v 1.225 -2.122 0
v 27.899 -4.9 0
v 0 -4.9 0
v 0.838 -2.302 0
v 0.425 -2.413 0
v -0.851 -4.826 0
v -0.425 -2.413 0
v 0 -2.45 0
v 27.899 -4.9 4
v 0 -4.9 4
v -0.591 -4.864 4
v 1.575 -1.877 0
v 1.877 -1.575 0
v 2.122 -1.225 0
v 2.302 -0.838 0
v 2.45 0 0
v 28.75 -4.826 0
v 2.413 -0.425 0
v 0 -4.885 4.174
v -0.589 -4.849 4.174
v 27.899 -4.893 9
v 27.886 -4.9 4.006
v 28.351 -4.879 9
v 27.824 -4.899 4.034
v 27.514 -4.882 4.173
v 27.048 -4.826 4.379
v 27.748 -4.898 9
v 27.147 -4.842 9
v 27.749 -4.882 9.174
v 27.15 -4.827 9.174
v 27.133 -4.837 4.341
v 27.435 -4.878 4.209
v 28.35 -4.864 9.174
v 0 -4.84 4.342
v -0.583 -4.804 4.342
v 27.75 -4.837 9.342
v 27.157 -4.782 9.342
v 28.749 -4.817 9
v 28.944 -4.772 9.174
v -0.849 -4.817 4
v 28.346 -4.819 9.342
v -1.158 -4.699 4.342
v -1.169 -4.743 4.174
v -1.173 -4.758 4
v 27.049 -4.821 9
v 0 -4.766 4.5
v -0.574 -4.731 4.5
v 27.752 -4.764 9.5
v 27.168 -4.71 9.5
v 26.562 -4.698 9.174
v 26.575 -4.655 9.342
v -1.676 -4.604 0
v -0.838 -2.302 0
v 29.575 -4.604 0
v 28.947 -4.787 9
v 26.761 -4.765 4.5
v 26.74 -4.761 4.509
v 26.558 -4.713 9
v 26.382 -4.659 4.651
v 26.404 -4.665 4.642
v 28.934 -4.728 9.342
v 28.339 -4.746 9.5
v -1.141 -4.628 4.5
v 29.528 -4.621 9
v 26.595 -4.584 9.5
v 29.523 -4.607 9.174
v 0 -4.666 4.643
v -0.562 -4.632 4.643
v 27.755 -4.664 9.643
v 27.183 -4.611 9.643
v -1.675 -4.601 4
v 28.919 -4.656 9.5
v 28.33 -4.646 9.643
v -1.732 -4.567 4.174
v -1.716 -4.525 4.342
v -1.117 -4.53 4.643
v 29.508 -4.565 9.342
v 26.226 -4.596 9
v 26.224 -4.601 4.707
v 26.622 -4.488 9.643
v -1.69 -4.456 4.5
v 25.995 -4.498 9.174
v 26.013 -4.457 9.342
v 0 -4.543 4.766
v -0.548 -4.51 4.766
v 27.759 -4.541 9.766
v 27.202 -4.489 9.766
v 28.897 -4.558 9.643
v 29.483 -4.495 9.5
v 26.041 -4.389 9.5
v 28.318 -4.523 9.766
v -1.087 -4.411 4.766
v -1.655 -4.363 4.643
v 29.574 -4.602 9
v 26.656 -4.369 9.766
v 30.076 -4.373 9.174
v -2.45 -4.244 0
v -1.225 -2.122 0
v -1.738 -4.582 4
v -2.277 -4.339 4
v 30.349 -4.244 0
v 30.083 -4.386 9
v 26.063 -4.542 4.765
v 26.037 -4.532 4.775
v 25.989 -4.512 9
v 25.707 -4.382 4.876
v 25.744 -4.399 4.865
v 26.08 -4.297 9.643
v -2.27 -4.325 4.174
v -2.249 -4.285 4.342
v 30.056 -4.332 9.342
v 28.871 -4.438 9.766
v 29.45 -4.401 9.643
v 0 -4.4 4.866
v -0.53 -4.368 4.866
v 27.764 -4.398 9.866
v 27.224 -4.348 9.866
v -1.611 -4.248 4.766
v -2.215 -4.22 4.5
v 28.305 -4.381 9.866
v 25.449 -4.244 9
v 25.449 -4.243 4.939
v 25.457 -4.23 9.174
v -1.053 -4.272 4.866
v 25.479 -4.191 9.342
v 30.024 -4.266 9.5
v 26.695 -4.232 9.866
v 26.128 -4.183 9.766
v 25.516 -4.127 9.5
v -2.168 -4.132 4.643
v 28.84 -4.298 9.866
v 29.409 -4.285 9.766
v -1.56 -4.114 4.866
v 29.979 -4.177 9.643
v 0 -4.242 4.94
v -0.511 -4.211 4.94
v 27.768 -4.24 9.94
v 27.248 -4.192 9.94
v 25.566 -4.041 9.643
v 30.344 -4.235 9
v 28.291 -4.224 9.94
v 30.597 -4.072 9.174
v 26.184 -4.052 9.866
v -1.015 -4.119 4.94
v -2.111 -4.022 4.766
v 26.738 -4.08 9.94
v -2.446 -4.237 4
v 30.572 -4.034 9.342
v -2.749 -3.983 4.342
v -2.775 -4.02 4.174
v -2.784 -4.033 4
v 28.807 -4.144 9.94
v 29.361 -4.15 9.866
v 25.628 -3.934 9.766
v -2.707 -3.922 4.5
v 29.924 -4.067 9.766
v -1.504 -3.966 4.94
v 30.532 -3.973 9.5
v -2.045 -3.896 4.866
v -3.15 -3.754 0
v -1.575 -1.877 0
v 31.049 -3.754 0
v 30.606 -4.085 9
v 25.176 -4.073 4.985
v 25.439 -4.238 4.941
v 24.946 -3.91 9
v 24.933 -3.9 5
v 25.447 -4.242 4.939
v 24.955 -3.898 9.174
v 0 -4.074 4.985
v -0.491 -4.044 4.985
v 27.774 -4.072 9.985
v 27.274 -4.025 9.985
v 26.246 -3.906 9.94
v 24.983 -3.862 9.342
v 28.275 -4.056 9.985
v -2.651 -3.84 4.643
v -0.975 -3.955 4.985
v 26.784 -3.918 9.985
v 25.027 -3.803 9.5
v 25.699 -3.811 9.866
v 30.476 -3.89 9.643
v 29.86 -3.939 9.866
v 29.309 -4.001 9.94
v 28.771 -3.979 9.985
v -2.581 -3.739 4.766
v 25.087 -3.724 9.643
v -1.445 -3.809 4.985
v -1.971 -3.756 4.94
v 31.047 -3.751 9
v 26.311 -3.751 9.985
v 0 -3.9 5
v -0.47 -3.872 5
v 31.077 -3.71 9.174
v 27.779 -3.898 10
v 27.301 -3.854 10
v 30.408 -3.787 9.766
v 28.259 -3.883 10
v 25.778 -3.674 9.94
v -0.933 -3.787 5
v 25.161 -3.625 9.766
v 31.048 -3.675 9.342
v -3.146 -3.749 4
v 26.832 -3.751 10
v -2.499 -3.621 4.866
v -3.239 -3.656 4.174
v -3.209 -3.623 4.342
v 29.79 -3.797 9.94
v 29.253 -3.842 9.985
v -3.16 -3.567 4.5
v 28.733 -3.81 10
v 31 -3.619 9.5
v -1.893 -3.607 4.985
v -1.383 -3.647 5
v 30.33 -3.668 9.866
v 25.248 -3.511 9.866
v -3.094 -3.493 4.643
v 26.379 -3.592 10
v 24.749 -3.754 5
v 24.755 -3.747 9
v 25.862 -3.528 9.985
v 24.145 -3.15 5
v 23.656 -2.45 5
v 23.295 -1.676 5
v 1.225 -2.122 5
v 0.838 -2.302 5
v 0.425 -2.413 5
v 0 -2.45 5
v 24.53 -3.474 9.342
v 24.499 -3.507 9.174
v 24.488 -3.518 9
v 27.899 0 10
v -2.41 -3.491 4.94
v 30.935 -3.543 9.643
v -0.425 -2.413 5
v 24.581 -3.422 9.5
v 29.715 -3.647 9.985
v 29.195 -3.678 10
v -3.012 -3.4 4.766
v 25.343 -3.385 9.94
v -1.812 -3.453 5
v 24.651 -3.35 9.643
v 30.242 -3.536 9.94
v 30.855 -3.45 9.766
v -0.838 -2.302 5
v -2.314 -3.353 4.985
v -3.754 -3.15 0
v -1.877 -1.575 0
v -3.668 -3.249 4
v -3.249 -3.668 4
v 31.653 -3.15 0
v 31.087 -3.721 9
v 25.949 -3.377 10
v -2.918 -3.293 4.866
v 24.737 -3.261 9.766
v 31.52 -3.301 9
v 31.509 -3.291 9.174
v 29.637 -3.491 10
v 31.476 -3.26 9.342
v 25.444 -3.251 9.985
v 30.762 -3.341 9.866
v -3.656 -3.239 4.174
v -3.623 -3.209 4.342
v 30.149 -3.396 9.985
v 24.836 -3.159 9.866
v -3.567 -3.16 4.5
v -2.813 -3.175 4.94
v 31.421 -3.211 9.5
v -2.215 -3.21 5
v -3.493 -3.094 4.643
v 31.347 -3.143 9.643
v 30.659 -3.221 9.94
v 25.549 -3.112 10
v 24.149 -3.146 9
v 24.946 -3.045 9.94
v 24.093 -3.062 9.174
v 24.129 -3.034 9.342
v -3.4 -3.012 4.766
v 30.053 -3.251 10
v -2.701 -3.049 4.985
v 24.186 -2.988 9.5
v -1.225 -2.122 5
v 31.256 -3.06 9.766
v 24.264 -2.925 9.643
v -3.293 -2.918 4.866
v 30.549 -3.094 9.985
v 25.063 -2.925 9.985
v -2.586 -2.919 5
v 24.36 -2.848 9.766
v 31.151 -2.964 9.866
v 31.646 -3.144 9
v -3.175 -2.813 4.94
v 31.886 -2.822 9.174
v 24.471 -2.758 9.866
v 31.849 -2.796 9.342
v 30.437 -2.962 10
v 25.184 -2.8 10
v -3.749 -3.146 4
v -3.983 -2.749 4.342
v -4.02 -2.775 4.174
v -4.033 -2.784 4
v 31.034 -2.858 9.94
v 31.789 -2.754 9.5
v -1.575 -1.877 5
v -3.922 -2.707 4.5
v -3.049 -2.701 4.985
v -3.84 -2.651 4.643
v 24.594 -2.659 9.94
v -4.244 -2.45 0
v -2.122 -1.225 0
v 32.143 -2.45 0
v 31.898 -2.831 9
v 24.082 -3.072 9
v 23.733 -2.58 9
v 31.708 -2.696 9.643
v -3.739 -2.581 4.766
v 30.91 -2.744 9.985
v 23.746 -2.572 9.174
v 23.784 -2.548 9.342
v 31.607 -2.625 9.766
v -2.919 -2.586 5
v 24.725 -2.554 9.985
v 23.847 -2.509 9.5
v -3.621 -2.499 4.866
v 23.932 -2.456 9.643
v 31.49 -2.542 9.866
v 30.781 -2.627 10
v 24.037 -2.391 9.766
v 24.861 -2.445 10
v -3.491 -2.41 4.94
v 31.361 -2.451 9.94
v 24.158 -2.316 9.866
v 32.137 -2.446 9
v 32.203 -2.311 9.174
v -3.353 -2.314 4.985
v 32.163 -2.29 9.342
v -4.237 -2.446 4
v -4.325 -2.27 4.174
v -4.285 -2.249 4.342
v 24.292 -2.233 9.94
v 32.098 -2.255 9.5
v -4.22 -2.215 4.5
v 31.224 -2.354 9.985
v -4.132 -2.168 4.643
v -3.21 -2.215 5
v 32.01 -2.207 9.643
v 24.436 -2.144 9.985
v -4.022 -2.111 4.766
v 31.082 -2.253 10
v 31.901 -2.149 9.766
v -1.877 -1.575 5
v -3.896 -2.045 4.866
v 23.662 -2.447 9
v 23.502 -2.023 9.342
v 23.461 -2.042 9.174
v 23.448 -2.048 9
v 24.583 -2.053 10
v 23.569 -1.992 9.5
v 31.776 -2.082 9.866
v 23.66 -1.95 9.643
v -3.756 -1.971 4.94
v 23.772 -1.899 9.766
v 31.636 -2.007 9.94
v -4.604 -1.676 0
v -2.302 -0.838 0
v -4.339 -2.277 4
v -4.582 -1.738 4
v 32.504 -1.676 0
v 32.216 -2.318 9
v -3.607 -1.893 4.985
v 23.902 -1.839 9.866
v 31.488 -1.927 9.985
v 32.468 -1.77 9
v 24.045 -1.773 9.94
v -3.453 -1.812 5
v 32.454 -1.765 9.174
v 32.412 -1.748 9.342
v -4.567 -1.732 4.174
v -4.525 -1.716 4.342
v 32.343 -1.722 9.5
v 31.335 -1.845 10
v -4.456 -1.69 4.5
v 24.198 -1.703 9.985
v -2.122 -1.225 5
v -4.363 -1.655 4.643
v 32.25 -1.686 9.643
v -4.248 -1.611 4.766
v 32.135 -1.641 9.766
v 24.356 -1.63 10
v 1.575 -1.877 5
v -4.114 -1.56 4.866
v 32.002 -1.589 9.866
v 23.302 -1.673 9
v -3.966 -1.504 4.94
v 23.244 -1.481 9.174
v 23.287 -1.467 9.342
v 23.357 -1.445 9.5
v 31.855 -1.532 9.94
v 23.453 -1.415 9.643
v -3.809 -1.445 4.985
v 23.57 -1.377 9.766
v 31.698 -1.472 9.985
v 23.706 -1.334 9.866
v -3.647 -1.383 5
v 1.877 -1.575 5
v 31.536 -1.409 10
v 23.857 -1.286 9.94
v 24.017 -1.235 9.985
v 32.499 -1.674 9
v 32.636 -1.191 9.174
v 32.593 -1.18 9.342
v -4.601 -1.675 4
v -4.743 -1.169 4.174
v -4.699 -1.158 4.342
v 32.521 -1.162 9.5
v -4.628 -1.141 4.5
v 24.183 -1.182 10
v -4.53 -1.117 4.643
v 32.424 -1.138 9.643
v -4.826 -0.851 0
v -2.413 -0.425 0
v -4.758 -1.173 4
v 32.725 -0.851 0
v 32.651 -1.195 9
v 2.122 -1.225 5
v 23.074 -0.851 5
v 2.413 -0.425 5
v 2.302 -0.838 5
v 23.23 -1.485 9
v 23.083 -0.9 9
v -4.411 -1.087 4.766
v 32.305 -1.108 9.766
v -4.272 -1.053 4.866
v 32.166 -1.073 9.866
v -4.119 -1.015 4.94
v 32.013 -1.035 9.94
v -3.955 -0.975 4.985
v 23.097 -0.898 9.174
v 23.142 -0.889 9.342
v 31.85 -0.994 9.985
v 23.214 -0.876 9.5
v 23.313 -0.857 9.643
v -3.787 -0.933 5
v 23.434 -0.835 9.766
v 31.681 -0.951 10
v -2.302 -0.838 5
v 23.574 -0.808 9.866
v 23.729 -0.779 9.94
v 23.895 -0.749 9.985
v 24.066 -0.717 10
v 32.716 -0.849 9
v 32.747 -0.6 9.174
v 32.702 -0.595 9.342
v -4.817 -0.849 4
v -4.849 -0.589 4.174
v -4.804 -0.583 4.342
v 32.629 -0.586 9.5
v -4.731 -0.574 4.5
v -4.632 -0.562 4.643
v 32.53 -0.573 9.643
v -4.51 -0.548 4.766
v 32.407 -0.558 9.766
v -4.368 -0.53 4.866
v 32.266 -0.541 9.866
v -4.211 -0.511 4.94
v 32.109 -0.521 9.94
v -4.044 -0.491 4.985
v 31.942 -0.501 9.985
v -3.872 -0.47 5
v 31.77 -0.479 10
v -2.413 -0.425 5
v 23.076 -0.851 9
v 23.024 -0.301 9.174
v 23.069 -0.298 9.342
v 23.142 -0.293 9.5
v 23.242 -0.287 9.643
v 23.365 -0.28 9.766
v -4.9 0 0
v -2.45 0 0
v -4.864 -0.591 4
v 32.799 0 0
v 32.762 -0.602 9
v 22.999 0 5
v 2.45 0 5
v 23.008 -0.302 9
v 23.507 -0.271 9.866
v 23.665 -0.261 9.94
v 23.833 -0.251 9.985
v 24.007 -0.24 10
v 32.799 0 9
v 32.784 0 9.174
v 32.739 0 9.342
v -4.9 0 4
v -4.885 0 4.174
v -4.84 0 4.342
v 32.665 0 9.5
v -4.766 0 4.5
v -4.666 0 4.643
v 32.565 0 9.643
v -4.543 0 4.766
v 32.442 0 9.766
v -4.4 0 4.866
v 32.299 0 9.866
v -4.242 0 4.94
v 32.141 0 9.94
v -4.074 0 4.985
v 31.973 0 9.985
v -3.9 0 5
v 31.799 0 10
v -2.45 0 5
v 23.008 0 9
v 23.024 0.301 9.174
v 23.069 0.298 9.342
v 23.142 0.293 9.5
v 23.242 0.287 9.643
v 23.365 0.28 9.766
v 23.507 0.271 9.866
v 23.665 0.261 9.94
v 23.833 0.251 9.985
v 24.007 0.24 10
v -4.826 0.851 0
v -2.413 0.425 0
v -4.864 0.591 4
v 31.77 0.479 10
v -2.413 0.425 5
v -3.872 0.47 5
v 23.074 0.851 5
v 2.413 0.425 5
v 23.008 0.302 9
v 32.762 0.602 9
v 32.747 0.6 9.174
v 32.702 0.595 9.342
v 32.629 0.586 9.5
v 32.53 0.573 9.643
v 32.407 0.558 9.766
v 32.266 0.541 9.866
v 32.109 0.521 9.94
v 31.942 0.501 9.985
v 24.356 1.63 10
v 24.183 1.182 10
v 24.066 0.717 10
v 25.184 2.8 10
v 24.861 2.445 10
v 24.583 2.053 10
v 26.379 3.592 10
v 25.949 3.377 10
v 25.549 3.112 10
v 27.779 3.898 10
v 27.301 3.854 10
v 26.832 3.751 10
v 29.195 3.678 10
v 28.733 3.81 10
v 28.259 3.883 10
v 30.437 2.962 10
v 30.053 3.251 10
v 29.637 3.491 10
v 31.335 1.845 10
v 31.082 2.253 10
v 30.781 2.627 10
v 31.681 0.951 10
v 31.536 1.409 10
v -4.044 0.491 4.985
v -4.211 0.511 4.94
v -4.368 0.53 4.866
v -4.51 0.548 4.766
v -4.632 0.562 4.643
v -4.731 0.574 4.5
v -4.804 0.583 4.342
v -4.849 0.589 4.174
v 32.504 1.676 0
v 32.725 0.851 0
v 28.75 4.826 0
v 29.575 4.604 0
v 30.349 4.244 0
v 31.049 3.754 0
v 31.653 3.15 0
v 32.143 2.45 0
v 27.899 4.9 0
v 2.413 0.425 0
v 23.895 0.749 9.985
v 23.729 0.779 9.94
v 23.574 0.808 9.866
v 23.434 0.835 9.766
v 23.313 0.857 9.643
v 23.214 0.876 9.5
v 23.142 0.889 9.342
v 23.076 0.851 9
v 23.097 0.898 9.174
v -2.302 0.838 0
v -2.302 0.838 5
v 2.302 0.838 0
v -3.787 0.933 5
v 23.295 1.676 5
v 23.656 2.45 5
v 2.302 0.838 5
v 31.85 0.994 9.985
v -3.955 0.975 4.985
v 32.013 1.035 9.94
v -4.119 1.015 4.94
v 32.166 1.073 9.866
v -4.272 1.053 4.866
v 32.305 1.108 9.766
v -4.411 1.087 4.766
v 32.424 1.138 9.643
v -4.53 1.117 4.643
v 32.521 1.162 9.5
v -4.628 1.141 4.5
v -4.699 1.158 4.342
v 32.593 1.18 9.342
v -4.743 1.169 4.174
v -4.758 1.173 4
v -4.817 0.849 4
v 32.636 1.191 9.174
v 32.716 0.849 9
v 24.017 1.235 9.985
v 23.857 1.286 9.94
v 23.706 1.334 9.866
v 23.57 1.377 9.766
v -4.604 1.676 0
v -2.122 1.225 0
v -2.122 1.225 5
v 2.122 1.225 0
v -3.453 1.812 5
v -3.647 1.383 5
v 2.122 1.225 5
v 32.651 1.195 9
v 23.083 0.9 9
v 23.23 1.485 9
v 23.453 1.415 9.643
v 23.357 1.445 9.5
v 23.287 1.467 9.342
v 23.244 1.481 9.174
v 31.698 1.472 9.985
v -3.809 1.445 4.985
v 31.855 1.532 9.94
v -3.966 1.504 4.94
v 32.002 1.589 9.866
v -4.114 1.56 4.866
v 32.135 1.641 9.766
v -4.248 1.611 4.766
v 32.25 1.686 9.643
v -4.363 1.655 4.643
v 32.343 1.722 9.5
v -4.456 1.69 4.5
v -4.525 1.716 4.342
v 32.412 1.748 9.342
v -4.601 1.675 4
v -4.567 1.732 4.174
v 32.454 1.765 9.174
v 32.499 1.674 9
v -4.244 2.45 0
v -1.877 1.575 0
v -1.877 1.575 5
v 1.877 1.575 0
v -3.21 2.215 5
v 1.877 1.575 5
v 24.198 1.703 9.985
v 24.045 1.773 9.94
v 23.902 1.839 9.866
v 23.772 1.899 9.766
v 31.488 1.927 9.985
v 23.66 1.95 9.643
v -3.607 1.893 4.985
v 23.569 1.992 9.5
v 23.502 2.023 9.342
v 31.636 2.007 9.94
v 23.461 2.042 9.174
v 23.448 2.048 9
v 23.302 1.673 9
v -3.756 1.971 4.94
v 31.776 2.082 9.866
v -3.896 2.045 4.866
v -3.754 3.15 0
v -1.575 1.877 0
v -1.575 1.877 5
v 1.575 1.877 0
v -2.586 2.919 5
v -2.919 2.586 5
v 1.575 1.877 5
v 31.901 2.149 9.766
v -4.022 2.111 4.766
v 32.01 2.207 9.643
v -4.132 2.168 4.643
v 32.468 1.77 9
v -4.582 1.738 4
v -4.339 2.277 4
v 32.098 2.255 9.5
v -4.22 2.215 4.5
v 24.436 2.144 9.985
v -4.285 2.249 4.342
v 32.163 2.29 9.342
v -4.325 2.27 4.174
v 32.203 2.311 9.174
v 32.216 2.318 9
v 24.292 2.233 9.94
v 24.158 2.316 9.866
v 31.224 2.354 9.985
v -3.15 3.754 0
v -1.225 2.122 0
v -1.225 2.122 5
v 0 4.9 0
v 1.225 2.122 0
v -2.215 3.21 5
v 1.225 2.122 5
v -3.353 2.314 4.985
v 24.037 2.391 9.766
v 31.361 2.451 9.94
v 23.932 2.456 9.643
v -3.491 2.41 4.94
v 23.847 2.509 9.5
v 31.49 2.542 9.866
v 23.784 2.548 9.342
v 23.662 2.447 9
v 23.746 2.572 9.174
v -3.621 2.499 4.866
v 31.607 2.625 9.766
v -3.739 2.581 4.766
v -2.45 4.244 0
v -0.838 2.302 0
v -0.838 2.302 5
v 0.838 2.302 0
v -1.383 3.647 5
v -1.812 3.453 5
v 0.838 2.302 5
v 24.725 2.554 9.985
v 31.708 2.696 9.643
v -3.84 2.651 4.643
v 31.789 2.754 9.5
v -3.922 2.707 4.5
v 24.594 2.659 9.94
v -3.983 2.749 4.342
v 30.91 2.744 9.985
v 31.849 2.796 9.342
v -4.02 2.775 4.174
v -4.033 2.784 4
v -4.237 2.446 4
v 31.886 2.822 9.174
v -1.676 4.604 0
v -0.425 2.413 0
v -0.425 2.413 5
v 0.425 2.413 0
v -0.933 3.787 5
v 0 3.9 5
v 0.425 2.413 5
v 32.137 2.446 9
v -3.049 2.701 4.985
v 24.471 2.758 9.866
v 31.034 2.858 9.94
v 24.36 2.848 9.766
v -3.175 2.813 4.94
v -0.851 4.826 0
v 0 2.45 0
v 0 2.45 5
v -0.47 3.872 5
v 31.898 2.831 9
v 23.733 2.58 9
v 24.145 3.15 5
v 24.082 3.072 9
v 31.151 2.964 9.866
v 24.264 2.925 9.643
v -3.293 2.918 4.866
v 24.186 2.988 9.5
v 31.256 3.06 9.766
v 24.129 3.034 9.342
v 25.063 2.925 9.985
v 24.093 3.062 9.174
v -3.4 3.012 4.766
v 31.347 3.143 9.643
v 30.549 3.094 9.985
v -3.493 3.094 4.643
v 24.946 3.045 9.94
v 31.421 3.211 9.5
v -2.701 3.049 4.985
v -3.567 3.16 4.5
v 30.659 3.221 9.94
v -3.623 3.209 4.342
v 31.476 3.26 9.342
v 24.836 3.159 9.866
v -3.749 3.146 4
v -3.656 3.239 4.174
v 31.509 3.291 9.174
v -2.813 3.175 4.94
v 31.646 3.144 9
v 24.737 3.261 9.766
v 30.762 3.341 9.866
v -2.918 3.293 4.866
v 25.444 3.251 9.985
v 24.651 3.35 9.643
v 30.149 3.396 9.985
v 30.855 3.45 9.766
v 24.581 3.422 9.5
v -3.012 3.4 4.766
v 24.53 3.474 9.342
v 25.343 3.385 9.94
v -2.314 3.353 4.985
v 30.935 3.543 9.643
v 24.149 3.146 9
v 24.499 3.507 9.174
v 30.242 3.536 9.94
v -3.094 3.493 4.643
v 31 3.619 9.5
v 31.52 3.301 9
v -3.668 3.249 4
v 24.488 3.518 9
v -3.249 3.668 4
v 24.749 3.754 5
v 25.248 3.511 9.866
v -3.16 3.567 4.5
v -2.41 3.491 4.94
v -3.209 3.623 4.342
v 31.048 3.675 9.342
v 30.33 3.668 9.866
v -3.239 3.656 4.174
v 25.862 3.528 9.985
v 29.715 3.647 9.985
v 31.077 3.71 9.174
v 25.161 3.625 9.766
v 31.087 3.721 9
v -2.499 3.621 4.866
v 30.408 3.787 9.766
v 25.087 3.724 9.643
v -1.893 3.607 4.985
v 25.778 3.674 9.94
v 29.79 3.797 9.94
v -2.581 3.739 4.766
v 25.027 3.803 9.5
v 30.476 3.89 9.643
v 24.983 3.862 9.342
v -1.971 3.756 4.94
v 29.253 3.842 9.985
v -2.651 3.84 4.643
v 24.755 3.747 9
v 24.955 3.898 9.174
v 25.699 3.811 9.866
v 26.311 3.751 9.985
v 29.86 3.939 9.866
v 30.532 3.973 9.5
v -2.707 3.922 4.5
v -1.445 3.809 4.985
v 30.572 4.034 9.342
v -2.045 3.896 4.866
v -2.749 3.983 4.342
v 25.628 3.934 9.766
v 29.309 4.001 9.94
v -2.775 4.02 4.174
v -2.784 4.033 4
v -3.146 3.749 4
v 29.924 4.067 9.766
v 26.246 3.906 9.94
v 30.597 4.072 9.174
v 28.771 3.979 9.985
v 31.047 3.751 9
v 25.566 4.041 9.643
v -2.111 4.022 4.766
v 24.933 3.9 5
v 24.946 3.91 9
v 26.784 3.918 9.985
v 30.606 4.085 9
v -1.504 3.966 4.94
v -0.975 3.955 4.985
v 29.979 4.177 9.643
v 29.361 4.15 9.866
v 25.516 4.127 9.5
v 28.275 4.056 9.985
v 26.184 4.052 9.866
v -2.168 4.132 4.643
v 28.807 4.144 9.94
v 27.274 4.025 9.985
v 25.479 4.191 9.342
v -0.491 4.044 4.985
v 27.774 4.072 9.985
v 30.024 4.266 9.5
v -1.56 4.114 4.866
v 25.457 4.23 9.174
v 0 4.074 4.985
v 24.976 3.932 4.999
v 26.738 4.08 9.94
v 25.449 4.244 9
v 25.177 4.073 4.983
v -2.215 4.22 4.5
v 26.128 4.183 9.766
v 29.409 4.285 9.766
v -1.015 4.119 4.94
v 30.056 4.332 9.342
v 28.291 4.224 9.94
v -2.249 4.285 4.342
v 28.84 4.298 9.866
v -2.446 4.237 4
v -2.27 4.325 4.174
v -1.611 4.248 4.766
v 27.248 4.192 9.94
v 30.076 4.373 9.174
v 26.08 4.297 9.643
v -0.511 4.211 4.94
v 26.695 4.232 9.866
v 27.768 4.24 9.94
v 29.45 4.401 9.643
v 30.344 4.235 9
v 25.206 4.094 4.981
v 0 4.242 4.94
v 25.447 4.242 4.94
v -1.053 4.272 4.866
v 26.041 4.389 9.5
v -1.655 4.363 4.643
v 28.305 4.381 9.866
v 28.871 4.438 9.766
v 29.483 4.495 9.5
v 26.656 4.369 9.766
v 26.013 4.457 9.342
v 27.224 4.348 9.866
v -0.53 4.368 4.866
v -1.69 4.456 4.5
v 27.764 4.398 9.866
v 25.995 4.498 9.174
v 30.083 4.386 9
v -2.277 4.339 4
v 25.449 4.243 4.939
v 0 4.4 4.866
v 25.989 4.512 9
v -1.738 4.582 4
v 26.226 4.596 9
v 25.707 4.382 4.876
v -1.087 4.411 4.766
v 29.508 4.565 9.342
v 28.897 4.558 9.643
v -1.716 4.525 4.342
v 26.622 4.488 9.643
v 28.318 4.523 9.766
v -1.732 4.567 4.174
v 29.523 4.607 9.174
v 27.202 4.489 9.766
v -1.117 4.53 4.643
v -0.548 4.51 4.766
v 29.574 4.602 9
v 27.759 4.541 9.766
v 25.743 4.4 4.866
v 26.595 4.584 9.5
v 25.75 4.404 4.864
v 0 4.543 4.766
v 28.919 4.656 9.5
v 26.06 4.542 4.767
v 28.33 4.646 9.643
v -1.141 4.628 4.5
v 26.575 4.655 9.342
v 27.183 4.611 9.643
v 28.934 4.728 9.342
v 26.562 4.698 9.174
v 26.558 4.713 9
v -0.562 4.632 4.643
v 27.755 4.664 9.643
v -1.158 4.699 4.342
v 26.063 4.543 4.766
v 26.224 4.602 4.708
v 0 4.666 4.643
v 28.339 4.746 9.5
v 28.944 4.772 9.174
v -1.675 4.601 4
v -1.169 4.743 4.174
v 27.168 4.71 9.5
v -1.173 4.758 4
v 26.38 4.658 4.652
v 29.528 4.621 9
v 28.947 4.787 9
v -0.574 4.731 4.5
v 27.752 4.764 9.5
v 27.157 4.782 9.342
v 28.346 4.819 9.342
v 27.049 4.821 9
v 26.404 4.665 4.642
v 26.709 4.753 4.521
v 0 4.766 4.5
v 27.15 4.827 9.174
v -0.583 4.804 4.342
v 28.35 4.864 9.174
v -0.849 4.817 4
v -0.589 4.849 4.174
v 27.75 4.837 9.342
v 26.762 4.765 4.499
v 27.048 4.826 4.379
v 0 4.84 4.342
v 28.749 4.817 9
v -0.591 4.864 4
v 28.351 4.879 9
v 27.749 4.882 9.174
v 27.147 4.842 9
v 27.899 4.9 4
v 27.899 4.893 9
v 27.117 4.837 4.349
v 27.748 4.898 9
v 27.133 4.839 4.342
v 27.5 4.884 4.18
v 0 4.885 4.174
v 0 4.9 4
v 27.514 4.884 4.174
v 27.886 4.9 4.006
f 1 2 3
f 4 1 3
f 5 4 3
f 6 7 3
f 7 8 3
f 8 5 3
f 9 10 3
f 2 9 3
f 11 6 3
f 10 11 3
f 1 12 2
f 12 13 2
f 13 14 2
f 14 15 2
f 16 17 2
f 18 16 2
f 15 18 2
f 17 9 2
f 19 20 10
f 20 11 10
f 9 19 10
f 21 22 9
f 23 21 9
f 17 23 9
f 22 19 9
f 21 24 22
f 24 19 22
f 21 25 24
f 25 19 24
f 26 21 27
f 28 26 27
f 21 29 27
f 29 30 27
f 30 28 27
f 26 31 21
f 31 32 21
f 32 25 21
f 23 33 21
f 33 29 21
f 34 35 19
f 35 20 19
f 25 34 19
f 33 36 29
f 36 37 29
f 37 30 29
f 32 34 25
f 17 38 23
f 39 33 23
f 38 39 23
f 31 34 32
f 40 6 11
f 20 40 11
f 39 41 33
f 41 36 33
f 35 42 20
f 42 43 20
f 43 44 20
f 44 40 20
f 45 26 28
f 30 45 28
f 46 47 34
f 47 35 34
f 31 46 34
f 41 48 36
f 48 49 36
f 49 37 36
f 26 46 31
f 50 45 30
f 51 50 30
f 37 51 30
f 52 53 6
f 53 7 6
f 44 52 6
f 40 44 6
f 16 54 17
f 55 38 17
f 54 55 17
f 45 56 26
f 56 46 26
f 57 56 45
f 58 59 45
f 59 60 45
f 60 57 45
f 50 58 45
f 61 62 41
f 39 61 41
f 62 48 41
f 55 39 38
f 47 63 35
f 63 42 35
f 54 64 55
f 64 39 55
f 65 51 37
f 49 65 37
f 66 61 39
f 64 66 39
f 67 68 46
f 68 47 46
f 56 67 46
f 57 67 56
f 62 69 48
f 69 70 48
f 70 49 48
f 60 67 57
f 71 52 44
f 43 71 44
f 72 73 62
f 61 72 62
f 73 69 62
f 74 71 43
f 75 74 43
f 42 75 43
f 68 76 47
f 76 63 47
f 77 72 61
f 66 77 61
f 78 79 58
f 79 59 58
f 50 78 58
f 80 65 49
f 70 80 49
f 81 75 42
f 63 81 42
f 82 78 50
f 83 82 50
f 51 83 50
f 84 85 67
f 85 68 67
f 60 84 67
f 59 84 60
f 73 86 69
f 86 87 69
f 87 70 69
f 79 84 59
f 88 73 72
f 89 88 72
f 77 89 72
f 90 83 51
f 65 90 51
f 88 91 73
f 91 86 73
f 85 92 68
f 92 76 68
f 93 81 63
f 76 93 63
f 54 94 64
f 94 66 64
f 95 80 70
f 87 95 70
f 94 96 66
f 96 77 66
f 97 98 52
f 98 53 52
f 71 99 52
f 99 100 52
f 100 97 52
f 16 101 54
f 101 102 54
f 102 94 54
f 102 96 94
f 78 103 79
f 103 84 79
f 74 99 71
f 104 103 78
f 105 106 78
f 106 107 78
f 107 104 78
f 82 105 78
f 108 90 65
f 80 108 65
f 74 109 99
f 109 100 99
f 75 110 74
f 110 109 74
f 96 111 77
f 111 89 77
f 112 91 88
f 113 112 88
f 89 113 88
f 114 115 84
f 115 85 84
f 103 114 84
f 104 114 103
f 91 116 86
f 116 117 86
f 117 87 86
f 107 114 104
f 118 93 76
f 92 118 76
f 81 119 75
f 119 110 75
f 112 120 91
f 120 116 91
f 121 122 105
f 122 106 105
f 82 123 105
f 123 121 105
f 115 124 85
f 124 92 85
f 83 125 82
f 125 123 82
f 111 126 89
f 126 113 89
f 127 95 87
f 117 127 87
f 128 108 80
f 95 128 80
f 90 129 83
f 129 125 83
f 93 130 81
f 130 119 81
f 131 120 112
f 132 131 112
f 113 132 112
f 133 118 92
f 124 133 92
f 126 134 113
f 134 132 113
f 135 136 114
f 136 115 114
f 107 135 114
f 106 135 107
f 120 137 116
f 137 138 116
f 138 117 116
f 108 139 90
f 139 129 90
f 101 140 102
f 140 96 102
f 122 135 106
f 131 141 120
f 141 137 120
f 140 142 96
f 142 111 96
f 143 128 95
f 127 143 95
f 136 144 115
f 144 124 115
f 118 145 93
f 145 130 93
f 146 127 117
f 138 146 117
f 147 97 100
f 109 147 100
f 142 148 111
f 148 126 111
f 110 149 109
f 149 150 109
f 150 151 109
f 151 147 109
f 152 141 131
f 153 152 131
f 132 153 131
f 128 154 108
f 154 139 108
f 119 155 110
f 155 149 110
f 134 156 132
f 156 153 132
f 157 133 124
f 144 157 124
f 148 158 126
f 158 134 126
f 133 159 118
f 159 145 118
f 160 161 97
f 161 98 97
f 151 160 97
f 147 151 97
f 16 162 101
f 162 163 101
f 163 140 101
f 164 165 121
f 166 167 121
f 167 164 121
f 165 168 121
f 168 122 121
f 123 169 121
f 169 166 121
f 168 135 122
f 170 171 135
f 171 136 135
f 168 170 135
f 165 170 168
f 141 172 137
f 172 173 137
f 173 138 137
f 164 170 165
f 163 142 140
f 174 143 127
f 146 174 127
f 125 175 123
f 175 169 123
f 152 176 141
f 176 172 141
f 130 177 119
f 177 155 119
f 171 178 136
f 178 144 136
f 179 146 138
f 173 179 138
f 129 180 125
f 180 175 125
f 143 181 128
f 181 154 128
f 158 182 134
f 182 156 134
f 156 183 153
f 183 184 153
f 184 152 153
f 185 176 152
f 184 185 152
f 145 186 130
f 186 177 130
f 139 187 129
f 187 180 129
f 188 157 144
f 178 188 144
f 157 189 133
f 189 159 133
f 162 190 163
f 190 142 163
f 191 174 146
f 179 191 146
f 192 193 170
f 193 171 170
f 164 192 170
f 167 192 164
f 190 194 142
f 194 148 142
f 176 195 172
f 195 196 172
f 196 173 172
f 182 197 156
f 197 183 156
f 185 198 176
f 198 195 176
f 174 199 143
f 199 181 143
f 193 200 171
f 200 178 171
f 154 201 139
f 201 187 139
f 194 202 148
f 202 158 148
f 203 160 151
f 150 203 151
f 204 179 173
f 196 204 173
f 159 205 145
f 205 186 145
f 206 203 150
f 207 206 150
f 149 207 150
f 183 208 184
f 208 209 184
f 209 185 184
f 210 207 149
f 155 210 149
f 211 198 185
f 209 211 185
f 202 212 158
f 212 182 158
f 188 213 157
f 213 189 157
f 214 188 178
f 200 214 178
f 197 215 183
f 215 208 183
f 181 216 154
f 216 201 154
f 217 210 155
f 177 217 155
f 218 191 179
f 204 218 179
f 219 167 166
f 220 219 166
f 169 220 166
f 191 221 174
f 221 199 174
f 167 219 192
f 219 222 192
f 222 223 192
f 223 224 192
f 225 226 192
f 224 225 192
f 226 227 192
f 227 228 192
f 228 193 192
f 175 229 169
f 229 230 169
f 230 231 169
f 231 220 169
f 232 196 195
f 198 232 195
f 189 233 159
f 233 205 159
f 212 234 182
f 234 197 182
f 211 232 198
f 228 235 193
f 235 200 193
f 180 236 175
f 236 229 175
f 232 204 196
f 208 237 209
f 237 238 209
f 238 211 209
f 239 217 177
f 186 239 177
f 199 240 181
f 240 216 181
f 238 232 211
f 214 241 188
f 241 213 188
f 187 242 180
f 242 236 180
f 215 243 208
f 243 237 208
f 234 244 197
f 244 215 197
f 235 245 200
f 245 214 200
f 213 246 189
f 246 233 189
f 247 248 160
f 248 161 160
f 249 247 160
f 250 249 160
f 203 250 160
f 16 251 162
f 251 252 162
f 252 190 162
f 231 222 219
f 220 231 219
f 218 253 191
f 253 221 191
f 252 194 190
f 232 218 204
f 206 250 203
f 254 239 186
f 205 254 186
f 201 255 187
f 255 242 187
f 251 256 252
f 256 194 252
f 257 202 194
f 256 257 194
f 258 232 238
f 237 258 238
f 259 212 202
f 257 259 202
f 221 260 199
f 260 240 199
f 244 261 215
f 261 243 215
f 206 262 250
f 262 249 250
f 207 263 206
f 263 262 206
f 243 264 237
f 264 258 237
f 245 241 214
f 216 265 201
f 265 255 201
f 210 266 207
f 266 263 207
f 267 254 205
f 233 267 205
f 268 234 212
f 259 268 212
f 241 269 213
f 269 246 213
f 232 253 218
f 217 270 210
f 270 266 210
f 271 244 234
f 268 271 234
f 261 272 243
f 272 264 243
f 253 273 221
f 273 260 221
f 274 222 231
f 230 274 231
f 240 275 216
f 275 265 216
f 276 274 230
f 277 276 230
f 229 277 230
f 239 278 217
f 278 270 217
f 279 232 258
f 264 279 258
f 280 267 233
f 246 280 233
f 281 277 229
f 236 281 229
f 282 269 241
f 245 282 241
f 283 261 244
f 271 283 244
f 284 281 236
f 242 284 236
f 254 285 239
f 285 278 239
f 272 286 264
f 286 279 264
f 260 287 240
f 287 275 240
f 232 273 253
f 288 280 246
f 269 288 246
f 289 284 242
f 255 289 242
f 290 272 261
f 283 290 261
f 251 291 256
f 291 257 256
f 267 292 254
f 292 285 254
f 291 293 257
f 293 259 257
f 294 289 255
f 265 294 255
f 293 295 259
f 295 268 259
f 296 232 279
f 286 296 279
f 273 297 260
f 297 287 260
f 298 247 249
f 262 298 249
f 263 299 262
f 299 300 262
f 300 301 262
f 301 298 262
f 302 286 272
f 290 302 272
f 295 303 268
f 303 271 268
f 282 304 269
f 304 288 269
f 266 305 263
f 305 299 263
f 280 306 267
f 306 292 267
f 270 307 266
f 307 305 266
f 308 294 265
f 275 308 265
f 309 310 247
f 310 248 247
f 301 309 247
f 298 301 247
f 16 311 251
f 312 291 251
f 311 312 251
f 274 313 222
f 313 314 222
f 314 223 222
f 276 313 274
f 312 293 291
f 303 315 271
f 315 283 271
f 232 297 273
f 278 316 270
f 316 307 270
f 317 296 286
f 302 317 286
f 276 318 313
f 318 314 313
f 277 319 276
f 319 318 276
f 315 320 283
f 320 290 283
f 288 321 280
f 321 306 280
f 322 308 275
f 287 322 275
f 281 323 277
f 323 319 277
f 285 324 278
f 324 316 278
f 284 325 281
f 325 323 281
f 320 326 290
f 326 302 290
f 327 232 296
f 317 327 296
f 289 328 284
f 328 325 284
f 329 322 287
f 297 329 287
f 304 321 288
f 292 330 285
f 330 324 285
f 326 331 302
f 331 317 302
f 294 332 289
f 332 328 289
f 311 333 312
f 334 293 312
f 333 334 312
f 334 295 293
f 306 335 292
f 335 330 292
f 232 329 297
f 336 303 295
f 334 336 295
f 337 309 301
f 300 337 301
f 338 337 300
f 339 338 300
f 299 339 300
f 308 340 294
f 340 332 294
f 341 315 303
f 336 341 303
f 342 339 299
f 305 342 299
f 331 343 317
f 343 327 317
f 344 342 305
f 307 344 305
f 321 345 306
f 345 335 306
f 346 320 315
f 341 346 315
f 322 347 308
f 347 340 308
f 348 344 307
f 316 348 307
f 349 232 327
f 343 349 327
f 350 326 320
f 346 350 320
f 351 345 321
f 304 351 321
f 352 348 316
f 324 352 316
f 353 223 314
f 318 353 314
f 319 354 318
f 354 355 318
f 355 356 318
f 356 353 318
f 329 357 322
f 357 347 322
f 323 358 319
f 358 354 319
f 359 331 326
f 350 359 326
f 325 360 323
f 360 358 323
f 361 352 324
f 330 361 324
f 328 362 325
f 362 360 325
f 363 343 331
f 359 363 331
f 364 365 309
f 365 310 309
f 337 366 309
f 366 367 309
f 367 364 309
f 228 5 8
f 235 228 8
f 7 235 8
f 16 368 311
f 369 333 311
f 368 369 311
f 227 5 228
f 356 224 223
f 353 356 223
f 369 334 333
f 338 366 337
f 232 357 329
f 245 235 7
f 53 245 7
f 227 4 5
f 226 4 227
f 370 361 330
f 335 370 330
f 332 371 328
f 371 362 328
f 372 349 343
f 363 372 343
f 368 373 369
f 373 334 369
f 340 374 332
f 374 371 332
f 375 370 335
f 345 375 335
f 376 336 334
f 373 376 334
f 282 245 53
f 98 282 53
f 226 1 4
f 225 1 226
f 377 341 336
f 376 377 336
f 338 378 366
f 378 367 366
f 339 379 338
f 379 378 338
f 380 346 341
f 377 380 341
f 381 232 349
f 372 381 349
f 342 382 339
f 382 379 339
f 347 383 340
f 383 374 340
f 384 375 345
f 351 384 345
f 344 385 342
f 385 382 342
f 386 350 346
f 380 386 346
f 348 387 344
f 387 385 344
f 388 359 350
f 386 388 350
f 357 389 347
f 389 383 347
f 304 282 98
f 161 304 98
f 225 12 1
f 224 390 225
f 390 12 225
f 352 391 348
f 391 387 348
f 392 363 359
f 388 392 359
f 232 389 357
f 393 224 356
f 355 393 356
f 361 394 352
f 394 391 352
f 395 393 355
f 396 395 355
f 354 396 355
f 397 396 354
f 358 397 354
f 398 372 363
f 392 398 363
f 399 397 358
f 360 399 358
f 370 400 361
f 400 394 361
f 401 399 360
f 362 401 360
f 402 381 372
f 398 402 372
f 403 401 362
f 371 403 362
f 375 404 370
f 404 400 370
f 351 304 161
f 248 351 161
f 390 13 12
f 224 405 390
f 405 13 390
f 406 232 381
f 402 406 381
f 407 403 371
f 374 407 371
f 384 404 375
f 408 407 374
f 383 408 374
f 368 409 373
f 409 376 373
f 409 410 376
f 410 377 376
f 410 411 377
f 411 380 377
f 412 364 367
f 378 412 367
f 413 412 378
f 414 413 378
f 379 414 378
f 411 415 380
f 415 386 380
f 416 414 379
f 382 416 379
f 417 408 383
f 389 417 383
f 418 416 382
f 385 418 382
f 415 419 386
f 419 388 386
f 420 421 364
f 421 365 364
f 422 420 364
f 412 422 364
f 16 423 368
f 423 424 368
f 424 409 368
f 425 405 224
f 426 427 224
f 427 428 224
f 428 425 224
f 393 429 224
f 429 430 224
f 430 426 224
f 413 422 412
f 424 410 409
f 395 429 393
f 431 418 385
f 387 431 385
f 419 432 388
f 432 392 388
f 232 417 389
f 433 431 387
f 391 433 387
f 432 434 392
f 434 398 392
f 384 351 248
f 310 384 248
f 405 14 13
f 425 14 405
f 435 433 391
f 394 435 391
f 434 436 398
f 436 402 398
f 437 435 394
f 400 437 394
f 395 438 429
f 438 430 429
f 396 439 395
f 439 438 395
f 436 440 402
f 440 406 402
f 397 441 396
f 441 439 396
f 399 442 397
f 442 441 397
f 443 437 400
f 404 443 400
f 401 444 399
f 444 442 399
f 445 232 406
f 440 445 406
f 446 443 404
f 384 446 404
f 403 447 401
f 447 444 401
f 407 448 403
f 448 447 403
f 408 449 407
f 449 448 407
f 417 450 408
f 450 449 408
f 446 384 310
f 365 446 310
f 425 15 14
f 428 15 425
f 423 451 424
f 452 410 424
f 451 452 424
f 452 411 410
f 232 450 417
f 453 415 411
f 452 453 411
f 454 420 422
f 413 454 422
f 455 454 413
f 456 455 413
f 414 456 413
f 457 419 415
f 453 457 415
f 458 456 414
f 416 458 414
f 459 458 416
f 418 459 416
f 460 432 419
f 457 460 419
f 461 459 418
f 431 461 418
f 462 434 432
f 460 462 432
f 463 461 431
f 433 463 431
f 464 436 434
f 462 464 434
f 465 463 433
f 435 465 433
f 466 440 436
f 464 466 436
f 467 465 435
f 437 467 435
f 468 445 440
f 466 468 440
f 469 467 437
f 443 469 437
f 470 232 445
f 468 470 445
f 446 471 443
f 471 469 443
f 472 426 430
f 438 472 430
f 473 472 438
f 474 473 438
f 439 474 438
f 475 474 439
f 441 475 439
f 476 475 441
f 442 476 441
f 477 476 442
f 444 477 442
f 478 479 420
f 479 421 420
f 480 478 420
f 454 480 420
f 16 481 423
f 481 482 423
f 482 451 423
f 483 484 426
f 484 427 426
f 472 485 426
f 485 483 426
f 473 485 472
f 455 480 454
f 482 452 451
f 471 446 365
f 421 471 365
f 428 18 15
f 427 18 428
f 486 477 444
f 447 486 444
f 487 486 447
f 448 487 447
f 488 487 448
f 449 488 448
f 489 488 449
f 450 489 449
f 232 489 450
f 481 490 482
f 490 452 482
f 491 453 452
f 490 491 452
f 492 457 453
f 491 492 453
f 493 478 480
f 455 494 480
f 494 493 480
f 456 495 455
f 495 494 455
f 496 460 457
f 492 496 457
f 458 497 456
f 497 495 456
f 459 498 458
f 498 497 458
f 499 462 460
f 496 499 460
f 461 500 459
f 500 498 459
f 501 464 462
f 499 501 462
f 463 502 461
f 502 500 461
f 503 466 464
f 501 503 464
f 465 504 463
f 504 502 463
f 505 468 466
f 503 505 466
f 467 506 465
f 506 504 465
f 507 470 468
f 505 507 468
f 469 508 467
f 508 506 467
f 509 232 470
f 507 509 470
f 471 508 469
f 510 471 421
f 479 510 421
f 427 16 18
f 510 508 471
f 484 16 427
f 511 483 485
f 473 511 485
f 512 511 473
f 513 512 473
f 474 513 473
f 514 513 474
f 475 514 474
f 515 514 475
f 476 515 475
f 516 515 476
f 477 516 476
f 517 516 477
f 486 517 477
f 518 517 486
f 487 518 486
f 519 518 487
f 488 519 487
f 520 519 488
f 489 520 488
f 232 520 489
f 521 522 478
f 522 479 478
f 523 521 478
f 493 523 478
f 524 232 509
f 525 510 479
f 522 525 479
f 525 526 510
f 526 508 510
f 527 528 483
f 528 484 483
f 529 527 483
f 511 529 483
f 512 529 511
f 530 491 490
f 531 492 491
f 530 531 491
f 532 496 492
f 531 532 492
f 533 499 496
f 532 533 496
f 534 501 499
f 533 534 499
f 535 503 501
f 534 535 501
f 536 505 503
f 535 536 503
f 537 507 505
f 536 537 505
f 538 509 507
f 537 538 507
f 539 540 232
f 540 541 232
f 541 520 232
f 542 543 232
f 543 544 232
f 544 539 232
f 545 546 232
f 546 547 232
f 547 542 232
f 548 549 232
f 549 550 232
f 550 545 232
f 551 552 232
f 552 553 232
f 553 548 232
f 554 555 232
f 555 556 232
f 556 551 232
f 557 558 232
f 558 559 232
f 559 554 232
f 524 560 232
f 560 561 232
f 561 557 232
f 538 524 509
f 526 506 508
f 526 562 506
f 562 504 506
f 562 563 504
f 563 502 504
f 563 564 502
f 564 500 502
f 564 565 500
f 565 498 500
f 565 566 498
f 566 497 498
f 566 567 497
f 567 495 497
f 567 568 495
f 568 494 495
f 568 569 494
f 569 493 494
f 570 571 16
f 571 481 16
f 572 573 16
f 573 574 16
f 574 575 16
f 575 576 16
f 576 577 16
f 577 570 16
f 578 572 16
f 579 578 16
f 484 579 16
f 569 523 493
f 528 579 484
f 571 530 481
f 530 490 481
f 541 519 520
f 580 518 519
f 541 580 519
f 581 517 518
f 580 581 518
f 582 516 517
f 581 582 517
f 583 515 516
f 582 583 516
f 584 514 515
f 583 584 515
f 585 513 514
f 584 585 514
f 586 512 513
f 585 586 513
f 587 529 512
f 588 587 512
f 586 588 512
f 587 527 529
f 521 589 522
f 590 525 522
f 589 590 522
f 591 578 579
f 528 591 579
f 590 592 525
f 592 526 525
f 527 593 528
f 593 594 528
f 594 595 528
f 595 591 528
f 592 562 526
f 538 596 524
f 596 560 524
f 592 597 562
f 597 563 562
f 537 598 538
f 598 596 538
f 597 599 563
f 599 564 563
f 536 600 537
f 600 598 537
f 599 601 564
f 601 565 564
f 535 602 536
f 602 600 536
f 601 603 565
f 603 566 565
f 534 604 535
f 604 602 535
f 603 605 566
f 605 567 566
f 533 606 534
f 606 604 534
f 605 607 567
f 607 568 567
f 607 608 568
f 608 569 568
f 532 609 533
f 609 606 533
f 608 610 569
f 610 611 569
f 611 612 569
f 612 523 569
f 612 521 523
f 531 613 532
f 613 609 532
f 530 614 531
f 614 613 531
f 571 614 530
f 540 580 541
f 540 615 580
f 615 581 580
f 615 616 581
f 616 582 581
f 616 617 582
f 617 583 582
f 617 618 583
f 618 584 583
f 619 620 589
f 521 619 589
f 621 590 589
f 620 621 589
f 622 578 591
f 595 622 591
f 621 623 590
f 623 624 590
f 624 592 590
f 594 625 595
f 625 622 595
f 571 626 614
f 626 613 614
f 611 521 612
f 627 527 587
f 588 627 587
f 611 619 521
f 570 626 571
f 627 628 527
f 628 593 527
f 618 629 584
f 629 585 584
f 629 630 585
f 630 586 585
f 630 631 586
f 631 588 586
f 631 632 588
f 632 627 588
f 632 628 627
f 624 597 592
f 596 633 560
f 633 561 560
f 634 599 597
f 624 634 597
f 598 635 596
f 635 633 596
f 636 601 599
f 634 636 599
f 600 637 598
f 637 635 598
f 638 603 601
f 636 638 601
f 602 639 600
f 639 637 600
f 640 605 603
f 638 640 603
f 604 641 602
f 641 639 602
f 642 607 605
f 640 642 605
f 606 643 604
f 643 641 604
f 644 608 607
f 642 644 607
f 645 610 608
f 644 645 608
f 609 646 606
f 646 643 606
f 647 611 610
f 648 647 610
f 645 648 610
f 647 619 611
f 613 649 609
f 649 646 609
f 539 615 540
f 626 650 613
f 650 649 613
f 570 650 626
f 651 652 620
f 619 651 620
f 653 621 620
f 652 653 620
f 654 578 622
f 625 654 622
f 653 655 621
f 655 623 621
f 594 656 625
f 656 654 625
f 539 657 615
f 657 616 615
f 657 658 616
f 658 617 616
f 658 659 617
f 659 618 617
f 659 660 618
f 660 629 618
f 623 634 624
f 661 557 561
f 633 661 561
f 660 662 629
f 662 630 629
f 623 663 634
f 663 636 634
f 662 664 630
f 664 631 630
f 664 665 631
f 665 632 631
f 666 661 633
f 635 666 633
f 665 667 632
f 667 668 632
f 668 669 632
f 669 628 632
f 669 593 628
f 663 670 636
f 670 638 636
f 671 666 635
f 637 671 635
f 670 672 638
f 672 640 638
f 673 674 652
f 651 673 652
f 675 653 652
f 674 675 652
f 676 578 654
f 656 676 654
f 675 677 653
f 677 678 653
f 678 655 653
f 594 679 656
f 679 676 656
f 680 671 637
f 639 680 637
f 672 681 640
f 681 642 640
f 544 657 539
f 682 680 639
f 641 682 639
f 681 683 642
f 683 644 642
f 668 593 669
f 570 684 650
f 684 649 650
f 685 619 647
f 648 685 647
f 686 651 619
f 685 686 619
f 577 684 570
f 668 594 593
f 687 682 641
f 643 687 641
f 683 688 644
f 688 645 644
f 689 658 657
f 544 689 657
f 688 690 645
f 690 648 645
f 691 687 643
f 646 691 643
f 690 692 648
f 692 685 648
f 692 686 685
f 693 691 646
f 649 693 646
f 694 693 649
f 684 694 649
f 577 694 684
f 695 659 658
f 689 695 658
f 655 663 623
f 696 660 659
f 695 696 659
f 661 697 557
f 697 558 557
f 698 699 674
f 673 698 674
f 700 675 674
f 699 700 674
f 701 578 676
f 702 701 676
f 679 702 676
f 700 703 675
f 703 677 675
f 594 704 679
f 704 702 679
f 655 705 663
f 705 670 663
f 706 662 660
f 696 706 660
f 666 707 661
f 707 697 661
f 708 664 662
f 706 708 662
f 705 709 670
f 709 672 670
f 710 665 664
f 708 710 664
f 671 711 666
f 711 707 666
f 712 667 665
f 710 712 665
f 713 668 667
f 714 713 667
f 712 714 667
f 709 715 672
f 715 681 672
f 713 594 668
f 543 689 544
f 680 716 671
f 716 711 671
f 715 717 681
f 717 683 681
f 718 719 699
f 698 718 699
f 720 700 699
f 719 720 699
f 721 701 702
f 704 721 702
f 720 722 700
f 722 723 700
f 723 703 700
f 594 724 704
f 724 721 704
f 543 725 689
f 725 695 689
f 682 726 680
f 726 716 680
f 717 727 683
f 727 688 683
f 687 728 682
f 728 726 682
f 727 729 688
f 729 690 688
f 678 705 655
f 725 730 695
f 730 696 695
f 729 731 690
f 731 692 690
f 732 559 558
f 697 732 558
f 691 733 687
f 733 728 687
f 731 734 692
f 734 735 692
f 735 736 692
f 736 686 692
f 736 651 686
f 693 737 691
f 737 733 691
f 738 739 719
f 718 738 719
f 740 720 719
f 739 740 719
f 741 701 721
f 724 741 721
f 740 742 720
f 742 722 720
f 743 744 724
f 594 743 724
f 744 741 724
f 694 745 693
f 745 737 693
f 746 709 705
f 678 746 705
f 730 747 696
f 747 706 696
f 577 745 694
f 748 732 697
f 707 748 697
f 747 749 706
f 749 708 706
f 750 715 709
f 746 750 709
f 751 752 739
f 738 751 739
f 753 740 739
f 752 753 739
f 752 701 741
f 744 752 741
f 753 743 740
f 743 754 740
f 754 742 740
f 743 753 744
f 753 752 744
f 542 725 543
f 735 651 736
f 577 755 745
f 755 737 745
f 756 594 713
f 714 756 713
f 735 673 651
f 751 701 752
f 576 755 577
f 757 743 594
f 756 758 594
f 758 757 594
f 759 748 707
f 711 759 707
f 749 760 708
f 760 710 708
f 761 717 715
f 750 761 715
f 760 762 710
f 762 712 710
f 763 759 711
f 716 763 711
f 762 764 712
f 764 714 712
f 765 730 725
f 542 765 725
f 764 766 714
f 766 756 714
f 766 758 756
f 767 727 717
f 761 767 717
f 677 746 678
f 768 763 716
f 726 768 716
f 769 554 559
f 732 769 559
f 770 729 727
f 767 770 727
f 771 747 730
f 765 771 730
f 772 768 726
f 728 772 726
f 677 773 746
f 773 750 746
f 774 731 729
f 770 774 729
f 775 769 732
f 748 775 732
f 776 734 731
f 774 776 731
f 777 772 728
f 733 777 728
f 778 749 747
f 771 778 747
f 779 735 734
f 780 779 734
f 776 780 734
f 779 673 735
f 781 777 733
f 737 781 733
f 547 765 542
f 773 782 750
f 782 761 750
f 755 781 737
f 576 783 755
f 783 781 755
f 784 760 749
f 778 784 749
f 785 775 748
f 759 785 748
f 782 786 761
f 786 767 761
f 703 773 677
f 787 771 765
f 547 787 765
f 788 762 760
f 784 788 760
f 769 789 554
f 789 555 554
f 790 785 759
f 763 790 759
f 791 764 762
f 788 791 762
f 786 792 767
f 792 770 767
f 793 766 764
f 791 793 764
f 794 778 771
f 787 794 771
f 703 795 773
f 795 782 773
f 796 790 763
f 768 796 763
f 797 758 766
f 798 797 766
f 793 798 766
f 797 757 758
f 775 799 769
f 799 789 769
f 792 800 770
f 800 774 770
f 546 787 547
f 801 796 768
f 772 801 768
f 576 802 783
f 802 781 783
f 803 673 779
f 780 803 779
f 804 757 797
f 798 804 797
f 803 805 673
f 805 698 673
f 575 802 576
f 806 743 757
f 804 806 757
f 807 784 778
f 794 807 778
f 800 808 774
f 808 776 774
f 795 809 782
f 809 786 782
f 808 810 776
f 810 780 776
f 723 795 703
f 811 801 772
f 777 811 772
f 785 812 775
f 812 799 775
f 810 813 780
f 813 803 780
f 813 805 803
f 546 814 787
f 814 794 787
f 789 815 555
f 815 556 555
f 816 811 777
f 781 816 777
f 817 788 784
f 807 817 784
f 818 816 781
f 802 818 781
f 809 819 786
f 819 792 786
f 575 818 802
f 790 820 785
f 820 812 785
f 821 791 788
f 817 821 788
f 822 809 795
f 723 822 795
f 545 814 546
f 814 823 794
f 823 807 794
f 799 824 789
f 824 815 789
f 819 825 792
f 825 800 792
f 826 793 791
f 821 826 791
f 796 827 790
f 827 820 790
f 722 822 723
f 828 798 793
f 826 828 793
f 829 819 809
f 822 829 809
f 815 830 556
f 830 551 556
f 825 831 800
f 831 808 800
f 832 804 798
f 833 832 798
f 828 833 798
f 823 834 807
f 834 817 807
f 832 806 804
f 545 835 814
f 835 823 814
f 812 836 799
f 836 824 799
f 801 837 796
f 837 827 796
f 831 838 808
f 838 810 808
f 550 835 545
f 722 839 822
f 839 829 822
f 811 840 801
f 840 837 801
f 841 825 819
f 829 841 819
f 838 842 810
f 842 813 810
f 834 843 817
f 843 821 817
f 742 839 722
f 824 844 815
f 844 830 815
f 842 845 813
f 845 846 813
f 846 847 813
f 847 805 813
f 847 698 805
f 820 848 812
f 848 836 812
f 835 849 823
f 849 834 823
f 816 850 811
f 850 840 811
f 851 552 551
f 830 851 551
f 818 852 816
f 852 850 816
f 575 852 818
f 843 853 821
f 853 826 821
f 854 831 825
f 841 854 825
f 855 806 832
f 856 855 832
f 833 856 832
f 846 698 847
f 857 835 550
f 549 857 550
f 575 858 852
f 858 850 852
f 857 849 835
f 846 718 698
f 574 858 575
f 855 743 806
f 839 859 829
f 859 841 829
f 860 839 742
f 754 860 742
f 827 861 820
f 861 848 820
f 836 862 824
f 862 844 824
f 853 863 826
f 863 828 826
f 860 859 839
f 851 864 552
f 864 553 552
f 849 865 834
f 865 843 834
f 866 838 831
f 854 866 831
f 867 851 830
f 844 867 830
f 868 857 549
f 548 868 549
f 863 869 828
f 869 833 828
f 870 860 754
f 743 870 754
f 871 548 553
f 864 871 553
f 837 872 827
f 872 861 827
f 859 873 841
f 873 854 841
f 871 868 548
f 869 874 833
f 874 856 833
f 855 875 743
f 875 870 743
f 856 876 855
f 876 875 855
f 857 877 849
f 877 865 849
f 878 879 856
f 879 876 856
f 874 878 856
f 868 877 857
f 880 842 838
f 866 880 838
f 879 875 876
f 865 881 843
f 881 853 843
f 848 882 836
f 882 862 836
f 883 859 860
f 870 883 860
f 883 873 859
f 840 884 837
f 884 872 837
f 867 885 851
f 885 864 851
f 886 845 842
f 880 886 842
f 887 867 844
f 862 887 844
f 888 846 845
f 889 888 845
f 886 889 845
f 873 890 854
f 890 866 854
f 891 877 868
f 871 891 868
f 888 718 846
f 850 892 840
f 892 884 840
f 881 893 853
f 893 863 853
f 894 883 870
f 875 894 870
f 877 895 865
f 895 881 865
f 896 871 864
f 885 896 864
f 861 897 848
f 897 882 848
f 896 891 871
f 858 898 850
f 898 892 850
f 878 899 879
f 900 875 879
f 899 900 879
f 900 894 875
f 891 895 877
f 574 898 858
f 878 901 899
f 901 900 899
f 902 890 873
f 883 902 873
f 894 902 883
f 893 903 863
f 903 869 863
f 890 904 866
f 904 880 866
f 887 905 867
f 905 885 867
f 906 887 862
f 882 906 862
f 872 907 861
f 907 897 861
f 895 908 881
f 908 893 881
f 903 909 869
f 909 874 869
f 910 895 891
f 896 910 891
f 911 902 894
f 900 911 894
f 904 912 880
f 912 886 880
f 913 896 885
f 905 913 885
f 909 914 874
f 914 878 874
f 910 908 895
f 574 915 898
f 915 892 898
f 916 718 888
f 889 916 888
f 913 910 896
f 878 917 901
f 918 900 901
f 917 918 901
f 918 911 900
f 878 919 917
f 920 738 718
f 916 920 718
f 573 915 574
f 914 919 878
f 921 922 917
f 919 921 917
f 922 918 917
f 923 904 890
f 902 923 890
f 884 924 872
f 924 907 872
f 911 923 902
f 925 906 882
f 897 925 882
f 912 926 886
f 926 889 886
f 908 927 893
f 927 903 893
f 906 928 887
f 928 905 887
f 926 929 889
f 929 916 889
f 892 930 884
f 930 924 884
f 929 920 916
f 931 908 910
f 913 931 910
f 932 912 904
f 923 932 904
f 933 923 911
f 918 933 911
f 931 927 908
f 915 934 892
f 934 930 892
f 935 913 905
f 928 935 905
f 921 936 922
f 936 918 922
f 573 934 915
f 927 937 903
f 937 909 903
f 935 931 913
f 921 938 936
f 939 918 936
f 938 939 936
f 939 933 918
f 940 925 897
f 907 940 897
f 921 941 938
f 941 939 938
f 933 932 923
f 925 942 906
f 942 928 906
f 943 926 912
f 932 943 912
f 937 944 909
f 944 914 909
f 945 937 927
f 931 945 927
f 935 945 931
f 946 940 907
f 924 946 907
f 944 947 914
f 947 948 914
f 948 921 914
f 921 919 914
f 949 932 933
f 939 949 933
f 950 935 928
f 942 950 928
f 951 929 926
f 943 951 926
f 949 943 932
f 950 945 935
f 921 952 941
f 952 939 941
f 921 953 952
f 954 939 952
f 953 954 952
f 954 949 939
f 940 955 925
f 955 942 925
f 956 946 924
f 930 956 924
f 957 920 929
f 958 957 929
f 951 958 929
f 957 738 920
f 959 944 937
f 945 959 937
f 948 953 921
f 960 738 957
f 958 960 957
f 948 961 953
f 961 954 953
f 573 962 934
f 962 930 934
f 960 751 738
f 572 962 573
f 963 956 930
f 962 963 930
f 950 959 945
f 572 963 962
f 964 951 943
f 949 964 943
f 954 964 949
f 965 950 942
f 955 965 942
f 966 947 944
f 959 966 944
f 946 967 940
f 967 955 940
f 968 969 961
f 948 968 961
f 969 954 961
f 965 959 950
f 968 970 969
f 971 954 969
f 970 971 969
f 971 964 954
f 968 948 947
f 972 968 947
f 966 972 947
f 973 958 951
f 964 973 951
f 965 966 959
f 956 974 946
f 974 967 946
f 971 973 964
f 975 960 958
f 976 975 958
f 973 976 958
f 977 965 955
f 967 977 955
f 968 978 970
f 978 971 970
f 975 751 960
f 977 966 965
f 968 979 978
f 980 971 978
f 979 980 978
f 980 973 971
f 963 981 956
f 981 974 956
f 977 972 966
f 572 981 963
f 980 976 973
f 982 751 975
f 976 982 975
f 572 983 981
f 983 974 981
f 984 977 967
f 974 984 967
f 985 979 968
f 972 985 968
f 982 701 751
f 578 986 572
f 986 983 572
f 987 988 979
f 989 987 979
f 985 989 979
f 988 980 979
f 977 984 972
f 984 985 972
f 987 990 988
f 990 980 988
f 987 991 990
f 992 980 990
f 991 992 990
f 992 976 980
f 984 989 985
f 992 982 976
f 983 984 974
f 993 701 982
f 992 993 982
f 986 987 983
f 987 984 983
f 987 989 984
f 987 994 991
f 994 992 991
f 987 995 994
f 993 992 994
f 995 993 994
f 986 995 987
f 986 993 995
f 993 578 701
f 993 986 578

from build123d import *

# Parameters (mm, degrees)
SKETCH1_R           = 2.45
BOSS_EXTRUDE1_DEPTH = 5
BOSS_EXTRUDE2_START = 5
SKETCH2_R           = 4.9
BOSS_EXTRUDE2_DEPTH = 5
FILLET1_R           = 1


with BuildPart() as part:
    # Sketch1 → Boss-Extrude1 (new body)
    with BuildSketch(Plane.XY):
        with BuildLine():
            Line((0, 4.9), (27.899102923, 4.9))
            ThreePointArc((27.899102923, 4.9), (32.799102923, 0), (27.899102923, -4.9))
            Line((27.899102923, -4.9), (0, -4.9))
            ThreePointArc((0, -4.9), (-4.9, 0), (0, 4.9))
        make_face()
        Circle(SKETCH1_R, mode=Mode.SUBTRACT)
    extrude(amount=BOSS_EXTRUDE1_DEPTH)

    # Sketch2 → Boss-Extrude2 (add)
    with BuildSketch(Plane.XY.offset(BOSS_EXTRUDE2_START)):
        with Locations(Location((27.899102923, 0, 0), (0, 0, 90))):
            Circle(SKETCH2_R)
    extrude(amount=BOSS_EXTRUDE2_DEPTH)

    # Fillet1
    # the kernel refuses this fillet: 1 mm, written as the material it takes off along each edge
    with BuildSketch(Plane(origin=(0, 4.9, 5), x_dir=(0, -1, 0), z_dir=(1, 0, 0))) as fillet1_piece_1_section:
        with BuildLine():
            CenterArc((FILLET1_R, FILLET1_R), FILLET1_R, 180, 90)
            Line((0, FILLET1_R), (0, 0))
            Line((0, 0), (FILLET1_R, 0))
        make_face()
    fillet1_piece_1 = extrude(amount=30.399102923, mode=Mode.PRIVATE)
    fillet1_piece_1 = fillet1_piece_1 - Plane(origin=(27.899102923, 0, 4.766386188), x_dir=(0, 1, 0), z_dir=(0, 0, -1)) * Cylinder(4.9, 65, mode=Mode.PRIVATE)
    add(fillet1_piece_1, mode=Mode.SUBTRACT)
    with BuildSketch(Plane(origin=(27.899102923, 0, 10), x_dir=(0, 1, 0), z_dir=(1, 0, 0))) as fillet1_piece_2:
        with BuildLine():
            CenterArc((4.9 - FILLET1_R, -FILLET1_R), FILLET1_R, 0, 90)
            Line((4.9 - FILLET1_R, 0), (4.9, 0))
            Line((4.9, 0), (4.9, -FILLET1_R))
        make_face()
    revolve(axis=Axis((27.899102923, 0, 10), (0, 0, 1)), mode=Mode.SUBTRACT)
    with BuildSketch(Plane(origin=(0, 0, 5), x_dir=(0, -1, 0), z_dir=(1, 0, 0))) as fillet1_piece_3:
        with BuildLine():
            CenterArc((4.9 - FILLET1_R, FILLET1_R), FILLET1_R, 270, 90)
            Line((4.9 - FILLET1_R, 0), (4.9, 0))
            Line((4.9, 0), (4.9, FILLET1_R))
        make_face()
    revolve(axis=Axis((0, 0, 5), (0, 0, -1)), revolution_arc=180, mode=Mode.SUBTRACT)
    with BuildSketch(Plane(origin=(30.399102923, -4.9, 5), x_dir=(0, 0, -1), z_dir=(-1, 0, 0))) as fillet1_piece_4_section:
        with BuildLine():
            CenterArc((FILLET1_R, -FILLET1_R), FILLET1_R, 90, 90)
            Line((0, -FILLET1_R), (0, 0))
            Line((0, 0), (FILLET1_R, 0))
        make_face()
    fillet1_piece_4 = extrude(amount=30.399102923, mode=Mode.PRIVATE)
    fillet1_piece_4 = fillet1_piece_4 - Plane(origin=(27.899102923, 0, 4.766386187), x_dir=(0, 1, 0), z_dir=(0, 0, -1)) * Cylinder(4.9, 65, mode=Mode.PRIVATE)
    add(fillet1_piece_4, mode=Mode.SUBTRACT)


solid = part.part
